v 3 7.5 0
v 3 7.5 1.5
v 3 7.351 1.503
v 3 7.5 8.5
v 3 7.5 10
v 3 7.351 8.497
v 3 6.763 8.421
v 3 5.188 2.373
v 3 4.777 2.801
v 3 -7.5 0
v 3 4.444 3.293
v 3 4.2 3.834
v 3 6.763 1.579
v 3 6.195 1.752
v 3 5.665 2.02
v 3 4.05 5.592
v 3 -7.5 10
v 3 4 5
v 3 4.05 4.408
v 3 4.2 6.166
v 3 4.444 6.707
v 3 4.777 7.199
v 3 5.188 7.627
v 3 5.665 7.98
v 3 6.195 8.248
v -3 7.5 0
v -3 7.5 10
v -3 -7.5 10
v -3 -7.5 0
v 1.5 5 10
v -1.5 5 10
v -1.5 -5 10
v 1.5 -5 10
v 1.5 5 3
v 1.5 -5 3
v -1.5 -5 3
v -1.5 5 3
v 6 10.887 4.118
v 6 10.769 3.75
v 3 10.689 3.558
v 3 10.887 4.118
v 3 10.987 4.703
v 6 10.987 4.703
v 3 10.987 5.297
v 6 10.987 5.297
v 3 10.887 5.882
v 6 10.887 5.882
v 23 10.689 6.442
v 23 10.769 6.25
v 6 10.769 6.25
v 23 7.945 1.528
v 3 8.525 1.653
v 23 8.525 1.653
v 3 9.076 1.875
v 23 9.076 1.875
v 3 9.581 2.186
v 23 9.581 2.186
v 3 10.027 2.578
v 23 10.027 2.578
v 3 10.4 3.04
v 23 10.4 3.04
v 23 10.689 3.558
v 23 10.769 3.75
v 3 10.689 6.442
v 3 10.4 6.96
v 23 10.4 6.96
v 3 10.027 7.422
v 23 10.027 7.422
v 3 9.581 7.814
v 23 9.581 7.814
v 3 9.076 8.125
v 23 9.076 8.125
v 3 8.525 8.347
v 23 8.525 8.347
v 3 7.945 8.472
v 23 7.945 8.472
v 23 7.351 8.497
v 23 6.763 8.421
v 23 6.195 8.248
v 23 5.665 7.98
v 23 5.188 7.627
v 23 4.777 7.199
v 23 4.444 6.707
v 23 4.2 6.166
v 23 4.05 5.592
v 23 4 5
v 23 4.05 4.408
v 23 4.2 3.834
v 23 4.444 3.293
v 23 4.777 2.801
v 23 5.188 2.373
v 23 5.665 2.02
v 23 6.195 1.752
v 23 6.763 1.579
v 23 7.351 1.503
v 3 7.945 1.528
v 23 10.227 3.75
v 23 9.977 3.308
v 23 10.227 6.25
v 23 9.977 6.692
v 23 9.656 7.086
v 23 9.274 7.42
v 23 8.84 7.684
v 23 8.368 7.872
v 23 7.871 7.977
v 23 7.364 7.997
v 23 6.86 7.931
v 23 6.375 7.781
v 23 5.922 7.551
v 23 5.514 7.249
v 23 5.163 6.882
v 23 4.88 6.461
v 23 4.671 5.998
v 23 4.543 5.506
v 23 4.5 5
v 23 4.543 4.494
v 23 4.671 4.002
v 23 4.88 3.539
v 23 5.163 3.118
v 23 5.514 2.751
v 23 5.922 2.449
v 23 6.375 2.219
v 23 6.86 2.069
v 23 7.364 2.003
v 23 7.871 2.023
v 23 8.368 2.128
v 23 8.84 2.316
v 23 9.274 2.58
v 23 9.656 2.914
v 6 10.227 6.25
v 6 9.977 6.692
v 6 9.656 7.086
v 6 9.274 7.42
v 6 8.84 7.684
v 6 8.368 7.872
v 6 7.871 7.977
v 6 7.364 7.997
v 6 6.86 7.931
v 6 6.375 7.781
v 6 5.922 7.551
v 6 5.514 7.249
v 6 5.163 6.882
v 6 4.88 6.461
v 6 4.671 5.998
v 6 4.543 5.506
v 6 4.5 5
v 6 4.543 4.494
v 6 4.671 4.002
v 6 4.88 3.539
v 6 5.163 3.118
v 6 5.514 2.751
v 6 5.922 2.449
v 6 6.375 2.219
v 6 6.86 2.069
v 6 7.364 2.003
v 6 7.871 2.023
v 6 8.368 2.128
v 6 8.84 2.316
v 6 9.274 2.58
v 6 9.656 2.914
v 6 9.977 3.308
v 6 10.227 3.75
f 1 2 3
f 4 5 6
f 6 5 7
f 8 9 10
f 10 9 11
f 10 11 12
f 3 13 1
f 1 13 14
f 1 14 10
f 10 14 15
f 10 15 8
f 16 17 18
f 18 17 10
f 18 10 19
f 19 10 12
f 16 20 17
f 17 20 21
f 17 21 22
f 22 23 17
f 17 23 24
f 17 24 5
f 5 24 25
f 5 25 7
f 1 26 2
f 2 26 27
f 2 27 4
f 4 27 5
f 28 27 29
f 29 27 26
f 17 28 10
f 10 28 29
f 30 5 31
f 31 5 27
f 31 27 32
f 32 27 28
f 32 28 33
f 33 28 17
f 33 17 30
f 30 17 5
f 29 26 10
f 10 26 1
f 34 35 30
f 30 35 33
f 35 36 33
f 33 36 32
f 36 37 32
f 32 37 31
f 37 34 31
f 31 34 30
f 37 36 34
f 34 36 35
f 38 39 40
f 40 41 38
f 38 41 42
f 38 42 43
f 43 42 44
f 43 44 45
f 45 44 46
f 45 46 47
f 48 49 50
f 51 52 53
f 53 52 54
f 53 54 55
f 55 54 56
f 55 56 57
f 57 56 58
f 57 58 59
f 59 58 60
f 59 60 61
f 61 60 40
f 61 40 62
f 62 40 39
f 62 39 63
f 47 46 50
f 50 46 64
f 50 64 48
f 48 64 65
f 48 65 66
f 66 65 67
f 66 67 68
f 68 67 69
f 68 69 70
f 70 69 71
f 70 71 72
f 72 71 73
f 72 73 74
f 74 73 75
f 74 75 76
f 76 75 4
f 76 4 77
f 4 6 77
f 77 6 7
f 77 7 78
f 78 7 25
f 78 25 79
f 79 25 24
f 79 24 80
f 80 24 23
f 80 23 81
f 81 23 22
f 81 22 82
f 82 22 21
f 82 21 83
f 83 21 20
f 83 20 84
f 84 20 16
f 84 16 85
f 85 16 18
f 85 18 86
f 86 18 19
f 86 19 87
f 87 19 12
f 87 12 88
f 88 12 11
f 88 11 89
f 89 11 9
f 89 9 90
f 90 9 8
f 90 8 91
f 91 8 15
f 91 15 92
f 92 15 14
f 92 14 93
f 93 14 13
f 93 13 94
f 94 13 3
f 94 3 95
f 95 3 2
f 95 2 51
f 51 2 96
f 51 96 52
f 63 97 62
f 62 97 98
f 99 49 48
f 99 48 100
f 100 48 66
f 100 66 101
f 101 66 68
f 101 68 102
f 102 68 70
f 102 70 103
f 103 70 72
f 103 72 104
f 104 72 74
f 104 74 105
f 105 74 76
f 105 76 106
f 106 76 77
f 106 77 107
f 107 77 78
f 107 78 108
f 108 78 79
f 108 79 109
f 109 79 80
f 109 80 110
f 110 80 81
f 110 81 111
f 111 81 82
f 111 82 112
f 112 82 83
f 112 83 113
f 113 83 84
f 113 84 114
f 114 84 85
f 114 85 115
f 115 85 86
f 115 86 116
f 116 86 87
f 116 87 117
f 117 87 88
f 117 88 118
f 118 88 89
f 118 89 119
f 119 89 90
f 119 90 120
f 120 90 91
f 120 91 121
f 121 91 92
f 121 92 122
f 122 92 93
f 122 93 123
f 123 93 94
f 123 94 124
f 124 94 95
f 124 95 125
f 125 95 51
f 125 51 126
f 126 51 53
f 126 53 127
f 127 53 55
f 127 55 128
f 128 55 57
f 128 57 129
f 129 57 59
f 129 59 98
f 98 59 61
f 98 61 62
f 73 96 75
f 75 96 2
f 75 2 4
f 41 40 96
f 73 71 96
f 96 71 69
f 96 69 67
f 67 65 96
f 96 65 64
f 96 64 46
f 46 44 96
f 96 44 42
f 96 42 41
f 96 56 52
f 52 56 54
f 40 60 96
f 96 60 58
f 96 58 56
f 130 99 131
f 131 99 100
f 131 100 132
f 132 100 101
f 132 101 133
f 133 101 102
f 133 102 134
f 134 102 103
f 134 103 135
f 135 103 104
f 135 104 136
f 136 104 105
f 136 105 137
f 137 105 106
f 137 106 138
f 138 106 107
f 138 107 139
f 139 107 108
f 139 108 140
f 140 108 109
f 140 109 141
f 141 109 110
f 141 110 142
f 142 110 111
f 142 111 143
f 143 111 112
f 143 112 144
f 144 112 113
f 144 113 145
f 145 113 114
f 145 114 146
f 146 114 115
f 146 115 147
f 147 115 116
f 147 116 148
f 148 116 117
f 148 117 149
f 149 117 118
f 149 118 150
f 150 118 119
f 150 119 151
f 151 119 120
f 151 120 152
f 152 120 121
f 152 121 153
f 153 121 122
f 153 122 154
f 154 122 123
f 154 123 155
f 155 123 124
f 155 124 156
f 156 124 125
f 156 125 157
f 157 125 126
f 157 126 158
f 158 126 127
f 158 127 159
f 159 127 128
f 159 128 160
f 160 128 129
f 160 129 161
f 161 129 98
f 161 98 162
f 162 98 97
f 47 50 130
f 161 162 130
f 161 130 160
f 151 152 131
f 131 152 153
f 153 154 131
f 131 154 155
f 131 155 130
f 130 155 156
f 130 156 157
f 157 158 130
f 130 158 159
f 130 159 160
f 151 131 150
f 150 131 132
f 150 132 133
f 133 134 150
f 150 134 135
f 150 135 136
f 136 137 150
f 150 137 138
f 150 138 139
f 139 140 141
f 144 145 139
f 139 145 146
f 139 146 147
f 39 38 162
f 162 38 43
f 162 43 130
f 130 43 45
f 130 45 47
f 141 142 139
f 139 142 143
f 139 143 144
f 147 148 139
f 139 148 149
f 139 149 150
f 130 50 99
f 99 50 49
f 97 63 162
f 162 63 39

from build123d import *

# Parameters (mm, degrees)
SKETCH1_W           = 6
SKETCH1_H           = 15
BOSS_EXTRUDE1_DEPTH = 10
SKETCH2_W           = 3
SKETCH2_H           = 10
CUT_EXTRUDE1_DEPTH  = 7
SKETCH3_R           = 3.5
BOSS_EXTRUDE2_DEPTH = 20
SKETCH5_R           = 3
CUT_EXTRUDE2_DEPTH  = 17
SKETCH6_W           = 2.5
SKETCH6_H           = 1
CUT_EXTRUDE3_DEPTH  = 17


with BuildPart() as part:
    # Sketch1 → Boss-Extrude1 (new body)
    with BuildSketch(Plane.XY):
        Rectangle(SKETCH1_W, SKETCH1_H)
    extrude(amount=BOSS_EXTRUDE1_DEPTH)

    # Sketch2 → Cut-Extrude1 (cut)
    with BuildSketch(Plane.XY.offset(10)):
        Rectangle(SKETCH2_W, SKETCH2_H)
    extrude(amount=-CUT_EXTRUDE1_DEPTH, mode=Mode.SUBTRACT)

    # Sketch3 → Boss-Extrude2 (add)
    with BuildSketch(Plane(origin=(3, 0, 0), x_dir=(0, 0, -1), z_dir=(1, 0, 0))):
        with Locations((-5, 7.5)):
            Circle(SKETCH3_R)
    extrude(amount=BOSS_EXTRUDE2_DEPTH)

    # Sketch5 → Cut-Extrude2 (cut)
    with BuildSketch(Plane(origin=(23, 0, 0), x_dir=(0, 0, -1), z_dir=(1, 0, 0))):
        with Locations(Location((-5, 7.5, 0), (0, 0, 90))):
            Circle(SKETCH5_R)
    extrude(amount=-CUT_EXTRUDE2_DEPTH, mode=Mode.SUBTRACT)

    # Sketch6 → Cut-Extrude3 (cut)
    with BuildSketch(Plane(origin=(23, 0, 0), x_dir=(0, 0, -1), z_dir=(1, 0, 0))):
        with Locations((-5, 10.5)):
            Rectangle(SKETCH6_W, SKETCH6_H)
    extrude(amount=-CUT_EXTRUDE3_DEPTH, mode=Mode.SUBTRACT)


solid = part.part
